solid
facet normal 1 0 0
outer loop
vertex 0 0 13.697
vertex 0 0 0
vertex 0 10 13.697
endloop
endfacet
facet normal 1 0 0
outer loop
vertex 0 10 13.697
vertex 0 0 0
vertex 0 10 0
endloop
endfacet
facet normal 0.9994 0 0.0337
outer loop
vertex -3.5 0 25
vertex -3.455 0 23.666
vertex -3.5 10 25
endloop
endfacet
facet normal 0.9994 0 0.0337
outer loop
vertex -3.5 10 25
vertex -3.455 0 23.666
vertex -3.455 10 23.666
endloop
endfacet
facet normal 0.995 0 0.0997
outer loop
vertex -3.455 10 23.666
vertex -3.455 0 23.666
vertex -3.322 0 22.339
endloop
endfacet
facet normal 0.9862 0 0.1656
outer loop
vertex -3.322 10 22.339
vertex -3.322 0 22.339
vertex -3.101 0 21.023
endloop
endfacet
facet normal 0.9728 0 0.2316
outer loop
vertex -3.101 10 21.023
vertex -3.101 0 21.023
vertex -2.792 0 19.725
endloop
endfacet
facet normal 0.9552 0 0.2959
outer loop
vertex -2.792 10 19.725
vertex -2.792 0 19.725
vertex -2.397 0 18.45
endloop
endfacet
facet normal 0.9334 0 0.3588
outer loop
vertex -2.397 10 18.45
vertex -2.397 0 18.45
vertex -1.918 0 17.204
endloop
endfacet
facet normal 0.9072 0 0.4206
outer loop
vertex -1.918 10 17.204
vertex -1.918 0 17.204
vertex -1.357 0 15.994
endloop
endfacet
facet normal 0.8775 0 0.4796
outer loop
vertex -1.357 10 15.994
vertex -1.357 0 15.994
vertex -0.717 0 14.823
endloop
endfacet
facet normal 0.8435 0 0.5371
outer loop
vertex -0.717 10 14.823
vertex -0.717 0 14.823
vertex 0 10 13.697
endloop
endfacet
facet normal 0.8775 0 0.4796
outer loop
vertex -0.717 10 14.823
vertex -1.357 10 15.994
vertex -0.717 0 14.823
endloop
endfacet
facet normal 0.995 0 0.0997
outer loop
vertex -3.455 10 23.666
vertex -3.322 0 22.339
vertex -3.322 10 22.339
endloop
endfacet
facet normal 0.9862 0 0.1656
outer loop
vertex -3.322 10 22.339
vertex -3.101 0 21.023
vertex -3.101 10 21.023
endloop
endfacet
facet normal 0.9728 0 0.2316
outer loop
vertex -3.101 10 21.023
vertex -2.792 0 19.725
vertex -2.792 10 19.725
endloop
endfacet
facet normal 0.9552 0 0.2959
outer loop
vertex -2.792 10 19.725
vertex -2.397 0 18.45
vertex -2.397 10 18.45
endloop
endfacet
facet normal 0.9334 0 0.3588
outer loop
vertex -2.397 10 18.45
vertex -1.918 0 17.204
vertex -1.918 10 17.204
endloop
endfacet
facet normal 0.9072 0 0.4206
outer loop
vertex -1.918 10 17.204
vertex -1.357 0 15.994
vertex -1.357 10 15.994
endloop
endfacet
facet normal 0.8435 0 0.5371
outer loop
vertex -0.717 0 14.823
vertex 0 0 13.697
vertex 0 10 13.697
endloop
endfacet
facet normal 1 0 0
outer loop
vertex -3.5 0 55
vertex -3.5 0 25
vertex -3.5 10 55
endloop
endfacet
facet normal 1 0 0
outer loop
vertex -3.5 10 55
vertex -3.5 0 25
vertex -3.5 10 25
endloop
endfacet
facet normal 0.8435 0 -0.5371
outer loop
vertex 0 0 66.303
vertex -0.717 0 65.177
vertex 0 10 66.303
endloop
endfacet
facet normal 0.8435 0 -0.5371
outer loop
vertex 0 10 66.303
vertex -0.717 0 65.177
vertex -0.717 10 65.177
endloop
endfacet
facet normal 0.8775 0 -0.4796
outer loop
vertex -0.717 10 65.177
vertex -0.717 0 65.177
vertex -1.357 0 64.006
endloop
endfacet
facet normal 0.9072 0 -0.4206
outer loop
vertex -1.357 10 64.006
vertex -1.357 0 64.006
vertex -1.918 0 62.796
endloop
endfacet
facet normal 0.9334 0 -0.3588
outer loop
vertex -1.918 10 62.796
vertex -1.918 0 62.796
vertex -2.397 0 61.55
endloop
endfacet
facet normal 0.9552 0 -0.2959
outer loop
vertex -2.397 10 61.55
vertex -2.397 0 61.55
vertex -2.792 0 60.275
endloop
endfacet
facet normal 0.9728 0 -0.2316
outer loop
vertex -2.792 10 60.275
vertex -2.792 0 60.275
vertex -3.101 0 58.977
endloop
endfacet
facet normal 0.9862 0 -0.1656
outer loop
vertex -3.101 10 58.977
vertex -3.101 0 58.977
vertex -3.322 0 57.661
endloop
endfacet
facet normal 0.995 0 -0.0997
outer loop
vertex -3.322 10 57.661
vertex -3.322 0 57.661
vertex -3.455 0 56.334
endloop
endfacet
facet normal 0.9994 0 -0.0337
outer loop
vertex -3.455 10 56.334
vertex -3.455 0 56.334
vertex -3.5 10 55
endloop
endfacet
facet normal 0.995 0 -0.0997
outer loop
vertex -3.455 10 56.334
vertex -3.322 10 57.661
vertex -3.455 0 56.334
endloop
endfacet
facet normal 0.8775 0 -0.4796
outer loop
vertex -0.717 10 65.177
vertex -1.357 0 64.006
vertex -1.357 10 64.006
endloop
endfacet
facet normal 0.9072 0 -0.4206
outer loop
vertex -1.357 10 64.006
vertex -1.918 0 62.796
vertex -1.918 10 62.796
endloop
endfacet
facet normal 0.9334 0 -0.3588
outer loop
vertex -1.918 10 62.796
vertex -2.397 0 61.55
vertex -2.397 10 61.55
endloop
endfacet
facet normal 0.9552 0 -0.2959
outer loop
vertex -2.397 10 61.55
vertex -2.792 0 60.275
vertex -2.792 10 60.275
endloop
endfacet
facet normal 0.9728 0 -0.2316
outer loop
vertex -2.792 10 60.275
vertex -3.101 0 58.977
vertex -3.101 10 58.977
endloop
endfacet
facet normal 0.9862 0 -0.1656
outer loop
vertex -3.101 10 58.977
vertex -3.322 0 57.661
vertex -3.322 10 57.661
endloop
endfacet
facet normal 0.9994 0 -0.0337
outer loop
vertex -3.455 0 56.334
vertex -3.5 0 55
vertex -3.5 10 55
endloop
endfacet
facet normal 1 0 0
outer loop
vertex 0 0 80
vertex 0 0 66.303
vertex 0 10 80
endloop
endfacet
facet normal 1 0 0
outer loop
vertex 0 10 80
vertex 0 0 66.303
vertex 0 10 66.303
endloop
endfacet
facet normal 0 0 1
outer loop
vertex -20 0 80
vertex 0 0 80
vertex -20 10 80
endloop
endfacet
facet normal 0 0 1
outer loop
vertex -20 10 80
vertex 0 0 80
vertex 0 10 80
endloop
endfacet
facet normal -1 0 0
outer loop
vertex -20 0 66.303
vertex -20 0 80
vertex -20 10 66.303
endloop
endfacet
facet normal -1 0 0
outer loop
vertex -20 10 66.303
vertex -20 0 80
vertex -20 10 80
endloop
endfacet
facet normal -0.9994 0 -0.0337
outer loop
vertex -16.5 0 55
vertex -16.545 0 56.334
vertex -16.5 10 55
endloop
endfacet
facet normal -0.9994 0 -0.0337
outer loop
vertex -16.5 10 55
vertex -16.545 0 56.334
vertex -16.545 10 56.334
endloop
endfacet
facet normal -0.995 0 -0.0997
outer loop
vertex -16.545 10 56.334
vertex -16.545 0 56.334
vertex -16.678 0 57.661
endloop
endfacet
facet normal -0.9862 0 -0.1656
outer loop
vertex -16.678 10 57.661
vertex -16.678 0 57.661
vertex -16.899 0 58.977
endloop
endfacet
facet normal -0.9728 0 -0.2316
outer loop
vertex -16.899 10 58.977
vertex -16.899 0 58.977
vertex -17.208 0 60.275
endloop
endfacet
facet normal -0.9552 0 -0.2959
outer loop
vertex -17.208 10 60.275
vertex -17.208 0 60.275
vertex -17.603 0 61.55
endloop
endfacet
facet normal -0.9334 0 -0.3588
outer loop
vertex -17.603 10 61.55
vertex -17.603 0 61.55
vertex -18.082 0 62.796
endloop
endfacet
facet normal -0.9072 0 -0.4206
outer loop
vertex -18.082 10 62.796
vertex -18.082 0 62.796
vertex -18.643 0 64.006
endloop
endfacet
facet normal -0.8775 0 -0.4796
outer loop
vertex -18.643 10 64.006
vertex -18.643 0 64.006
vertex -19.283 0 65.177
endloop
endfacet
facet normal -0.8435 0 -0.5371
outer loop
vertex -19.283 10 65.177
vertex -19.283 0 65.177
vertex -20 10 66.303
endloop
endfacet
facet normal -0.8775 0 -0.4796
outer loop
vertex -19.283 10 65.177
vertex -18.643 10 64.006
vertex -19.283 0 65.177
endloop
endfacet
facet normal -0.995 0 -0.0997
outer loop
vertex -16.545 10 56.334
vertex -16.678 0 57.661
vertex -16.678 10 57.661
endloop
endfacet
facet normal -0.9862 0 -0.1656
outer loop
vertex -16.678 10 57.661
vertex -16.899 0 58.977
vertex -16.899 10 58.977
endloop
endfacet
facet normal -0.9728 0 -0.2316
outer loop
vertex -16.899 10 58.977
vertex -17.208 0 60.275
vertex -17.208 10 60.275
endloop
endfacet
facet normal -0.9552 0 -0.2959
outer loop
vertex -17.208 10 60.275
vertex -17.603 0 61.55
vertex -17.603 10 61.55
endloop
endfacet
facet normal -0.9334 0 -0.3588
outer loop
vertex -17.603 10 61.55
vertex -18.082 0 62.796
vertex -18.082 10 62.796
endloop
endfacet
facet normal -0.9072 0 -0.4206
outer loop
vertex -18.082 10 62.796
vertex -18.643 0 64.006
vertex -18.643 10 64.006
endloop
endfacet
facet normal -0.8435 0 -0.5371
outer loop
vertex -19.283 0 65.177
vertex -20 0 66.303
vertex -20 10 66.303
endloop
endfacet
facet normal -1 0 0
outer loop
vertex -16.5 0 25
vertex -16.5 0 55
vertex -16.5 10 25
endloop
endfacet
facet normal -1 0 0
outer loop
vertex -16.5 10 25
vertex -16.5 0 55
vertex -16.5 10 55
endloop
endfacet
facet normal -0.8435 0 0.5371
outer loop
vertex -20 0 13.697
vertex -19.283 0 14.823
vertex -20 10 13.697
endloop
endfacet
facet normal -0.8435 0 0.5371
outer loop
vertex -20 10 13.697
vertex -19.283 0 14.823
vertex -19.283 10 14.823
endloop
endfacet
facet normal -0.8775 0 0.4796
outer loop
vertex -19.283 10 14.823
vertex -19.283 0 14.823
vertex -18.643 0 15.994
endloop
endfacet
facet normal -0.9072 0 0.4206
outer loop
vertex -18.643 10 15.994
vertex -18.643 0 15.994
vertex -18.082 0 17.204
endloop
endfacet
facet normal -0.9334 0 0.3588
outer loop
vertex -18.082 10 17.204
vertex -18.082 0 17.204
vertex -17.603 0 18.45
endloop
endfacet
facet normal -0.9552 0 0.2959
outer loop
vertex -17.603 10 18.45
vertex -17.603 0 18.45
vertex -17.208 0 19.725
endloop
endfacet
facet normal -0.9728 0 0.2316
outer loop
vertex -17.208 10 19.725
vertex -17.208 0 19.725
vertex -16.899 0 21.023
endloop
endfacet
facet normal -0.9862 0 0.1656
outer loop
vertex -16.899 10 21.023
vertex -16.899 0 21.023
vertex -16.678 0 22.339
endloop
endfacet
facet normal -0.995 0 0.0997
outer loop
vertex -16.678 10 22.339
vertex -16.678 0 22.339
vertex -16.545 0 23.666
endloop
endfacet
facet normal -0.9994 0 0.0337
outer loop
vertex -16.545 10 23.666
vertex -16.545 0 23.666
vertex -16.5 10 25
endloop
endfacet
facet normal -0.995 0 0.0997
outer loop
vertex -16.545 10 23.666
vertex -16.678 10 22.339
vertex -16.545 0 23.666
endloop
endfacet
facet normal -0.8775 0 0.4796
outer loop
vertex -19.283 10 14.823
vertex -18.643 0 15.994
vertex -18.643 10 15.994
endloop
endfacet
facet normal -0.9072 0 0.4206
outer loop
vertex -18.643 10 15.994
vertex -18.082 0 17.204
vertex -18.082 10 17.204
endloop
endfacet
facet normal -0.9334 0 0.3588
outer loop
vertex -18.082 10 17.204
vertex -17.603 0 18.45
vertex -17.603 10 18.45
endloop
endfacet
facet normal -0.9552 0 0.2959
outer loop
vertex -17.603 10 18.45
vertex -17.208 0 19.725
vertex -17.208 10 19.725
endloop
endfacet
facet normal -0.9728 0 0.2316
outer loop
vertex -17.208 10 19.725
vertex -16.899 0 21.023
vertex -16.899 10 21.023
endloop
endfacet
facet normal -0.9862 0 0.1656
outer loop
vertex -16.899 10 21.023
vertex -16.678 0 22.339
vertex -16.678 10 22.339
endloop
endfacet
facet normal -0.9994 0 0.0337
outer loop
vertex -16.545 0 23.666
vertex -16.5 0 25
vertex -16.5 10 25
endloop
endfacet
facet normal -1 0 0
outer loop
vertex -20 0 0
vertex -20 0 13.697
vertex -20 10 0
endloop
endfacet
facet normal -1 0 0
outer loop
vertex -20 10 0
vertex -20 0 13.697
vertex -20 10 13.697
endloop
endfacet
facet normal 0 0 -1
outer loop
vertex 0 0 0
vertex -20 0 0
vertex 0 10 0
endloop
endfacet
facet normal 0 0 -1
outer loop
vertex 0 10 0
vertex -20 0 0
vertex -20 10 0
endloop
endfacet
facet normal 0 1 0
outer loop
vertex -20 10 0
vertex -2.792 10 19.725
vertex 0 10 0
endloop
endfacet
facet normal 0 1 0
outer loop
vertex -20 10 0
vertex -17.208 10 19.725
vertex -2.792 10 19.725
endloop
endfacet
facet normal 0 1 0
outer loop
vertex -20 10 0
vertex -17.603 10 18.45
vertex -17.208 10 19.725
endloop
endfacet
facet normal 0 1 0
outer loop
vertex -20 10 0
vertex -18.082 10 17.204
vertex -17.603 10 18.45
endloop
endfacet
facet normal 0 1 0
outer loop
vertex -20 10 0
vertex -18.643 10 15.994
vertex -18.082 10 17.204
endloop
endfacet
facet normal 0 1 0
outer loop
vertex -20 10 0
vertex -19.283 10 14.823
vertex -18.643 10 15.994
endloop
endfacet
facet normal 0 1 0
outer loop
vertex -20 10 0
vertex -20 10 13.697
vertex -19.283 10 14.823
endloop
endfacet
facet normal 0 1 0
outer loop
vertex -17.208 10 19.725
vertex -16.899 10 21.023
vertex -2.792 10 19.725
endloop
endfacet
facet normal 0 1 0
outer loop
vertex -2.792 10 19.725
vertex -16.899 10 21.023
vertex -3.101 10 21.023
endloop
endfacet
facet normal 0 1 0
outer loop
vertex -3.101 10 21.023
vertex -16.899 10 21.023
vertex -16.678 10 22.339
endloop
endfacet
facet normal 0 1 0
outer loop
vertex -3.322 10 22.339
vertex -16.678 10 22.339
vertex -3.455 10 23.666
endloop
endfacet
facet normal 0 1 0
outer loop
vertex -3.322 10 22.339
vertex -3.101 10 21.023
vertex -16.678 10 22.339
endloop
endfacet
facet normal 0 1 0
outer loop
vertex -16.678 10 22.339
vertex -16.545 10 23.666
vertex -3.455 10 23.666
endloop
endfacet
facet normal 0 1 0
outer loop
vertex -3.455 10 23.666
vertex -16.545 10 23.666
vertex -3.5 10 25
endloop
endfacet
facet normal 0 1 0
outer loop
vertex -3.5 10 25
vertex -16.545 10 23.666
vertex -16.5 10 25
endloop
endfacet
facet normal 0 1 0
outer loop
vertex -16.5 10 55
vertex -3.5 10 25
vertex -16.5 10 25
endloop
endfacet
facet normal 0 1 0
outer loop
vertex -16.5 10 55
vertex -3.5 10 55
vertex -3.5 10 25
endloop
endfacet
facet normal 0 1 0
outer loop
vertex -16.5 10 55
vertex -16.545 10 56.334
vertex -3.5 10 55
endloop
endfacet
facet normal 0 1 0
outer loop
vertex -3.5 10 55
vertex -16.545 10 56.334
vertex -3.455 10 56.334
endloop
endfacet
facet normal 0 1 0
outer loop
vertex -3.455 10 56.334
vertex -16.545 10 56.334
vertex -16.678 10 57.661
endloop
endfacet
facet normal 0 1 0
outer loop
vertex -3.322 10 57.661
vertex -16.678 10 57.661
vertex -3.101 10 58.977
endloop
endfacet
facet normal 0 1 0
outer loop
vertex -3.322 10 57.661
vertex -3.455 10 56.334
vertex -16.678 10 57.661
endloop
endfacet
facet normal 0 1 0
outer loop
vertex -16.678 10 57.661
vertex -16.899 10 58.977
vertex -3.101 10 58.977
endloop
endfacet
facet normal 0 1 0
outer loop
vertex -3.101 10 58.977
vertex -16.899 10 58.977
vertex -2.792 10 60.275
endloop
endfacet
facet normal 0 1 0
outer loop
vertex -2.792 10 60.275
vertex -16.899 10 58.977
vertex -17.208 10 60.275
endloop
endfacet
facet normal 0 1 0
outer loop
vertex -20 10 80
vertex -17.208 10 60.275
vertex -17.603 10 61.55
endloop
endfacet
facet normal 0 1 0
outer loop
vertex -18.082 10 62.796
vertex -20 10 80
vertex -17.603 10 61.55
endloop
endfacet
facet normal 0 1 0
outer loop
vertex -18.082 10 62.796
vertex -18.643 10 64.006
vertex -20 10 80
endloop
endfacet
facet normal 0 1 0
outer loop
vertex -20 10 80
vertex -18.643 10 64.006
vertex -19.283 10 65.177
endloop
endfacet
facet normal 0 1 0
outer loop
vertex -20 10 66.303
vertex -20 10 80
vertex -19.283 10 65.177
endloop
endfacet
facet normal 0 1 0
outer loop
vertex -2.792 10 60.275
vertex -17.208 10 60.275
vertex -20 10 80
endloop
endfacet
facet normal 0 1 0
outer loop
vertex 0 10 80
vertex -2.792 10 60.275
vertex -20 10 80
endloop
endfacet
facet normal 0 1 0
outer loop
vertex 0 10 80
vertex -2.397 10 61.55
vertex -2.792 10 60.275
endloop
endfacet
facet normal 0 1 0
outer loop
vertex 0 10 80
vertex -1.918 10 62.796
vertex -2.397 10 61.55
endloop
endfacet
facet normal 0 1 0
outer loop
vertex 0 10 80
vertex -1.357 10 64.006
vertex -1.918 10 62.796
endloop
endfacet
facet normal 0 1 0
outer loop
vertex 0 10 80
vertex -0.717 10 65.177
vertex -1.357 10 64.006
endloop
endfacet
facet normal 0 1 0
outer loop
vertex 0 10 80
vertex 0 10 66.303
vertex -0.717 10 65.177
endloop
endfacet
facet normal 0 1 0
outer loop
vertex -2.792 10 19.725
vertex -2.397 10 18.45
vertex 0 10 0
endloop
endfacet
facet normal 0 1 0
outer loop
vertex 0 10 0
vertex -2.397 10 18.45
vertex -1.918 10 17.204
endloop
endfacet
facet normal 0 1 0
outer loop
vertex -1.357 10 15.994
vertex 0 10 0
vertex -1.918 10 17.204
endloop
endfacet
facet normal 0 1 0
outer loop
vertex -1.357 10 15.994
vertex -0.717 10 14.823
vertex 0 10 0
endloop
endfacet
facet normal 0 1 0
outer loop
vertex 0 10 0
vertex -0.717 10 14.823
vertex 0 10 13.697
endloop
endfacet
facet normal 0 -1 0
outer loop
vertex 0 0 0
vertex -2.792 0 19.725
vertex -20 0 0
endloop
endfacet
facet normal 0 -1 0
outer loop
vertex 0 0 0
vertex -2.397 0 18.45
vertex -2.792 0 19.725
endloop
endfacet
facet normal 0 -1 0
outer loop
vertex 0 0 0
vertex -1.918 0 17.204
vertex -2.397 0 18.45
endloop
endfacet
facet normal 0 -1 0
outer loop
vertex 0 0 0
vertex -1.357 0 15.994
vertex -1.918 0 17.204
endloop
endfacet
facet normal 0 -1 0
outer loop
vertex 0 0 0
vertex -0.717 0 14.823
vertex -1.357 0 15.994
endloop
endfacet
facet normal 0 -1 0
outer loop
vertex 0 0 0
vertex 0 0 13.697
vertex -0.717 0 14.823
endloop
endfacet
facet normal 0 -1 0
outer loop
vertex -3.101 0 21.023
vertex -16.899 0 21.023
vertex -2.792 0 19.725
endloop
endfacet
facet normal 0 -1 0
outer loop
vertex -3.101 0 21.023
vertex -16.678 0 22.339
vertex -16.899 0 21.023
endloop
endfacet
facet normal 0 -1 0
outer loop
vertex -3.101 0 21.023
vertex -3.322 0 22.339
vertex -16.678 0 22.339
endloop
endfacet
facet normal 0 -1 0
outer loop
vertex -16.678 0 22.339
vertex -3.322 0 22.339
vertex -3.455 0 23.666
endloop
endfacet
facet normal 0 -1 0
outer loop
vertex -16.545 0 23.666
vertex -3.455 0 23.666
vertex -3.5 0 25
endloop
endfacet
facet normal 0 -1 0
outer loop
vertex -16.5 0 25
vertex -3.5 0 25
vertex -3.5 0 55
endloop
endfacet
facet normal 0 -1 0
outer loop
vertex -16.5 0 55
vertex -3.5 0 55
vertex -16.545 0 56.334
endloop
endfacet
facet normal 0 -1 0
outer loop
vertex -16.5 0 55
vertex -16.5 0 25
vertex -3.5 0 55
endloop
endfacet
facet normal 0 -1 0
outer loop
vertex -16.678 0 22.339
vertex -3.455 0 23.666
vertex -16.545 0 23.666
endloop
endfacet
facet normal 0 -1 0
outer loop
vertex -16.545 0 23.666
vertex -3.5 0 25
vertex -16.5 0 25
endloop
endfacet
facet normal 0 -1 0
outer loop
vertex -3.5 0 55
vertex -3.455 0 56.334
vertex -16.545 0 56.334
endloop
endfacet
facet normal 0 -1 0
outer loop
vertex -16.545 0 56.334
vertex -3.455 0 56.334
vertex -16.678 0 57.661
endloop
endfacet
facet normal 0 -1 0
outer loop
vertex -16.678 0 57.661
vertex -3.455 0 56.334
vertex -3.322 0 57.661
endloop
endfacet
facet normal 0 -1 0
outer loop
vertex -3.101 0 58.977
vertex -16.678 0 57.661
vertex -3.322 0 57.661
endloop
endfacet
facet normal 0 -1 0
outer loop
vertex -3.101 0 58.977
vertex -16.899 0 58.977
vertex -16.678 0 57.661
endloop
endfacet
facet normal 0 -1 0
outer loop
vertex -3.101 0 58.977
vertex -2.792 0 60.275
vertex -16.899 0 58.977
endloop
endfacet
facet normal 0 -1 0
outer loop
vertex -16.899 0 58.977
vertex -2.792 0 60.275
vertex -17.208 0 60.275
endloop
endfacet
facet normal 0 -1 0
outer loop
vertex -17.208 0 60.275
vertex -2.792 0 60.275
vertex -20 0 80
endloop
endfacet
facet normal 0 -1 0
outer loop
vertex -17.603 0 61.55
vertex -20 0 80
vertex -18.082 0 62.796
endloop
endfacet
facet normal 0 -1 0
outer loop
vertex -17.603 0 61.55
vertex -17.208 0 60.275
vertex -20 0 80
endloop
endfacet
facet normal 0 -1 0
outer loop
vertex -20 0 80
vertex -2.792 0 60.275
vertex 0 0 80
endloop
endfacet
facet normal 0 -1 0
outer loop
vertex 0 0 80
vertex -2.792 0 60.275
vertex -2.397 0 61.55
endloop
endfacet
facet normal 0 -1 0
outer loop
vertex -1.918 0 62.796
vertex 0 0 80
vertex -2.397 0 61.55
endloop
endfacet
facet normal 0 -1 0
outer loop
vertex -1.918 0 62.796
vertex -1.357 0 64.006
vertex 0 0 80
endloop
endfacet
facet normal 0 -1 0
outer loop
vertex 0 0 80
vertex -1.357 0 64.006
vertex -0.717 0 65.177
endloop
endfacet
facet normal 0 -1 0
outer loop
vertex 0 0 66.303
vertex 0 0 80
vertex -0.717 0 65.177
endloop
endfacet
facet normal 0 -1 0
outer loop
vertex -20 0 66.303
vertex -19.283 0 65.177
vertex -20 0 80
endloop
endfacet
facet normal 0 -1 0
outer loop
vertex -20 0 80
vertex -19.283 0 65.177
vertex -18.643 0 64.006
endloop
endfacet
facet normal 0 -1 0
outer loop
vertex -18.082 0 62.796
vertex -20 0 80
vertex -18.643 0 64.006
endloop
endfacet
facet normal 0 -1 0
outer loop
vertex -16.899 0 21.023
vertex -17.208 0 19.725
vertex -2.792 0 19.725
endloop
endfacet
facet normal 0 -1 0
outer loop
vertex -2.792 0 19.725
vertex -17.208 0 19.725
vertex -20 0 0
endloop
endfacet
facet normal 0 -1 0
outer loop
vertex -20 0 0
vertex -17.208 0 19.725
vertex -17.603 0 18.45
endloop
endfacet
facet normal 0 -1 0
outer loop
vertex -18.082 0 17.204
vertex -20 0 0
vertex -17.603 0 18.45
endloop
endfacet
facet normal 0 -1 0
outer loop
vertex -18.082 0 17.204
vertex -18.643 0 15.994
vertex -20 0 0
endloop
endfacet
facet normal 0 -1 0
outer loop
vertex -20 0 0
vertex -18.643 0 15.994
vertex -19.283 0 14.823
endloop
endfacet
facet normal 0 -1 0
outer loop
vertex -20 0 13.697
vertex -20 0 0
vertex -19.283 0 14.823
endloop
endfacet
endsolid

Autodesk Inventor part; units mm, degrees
ref_plane "YZ Plane" through (0, 0, 0) normal (1, 0, 0) x (0, 1, 0)
ref_plane "XZ Plane" through (0, 0, 0) normal (0, 1, 0) x (-1, 0, 0)
ref_plane "XY Plane" through (0, 0, 0) normal (0, 0, 1) x (1, 0, 0)
sketch "Sketch1" plane through (0, 0, 0) normal (0, 1, 0) x (-1, 0, 0)
  line L0 (0, 0) -> (20, 0)
  line L1 (3.5, 25) -> (3.5, 40)
  line L2 (16.5, 25) -> (16.5, 40)
  arc A0 (16.5, 25) -> (20, 13.6973) centre (36.5, 25) ccw
  arc A1 (0, 13.6973) -> (3.5, 25) centre (-16.5, 25) ccw
  line L3 (3.5, 40) -> (16.5, 40) construction
  line L4 (0, 13.6973) -> (0, 0)
  line L5 (20, 13.6973) -> (20, 0)
  line L6 (0, 80) -> (20, 80)
  line L7 (3.5, 55) -> (3.5, 40)
  line L8 (16.5, 55) -> (16.5, 40)
  arc A2 (20, 66.3027) -> (16.5, 55) centre (36.5, 55) ccw
  arc A3 (3.5, 55) -> (0, 66.3027) centre (-16.5, 55) ccw
  line L9 (0, 66.3027) -> (0, 80)
  line L10 (20, 66.3027) -> (20, 80)
  dimension "d2" = 20
  dimension "d5" = 20
  dimension "d6" = 20
  dimension "d7" = 40
  dimension "d8" = 13
  dimension "d9" = 15
  dimension "d13" = 15
extrude "Extrusion1" add sketch "Sketch1" along normal blind 10
properties part number "Generic DogBone"
